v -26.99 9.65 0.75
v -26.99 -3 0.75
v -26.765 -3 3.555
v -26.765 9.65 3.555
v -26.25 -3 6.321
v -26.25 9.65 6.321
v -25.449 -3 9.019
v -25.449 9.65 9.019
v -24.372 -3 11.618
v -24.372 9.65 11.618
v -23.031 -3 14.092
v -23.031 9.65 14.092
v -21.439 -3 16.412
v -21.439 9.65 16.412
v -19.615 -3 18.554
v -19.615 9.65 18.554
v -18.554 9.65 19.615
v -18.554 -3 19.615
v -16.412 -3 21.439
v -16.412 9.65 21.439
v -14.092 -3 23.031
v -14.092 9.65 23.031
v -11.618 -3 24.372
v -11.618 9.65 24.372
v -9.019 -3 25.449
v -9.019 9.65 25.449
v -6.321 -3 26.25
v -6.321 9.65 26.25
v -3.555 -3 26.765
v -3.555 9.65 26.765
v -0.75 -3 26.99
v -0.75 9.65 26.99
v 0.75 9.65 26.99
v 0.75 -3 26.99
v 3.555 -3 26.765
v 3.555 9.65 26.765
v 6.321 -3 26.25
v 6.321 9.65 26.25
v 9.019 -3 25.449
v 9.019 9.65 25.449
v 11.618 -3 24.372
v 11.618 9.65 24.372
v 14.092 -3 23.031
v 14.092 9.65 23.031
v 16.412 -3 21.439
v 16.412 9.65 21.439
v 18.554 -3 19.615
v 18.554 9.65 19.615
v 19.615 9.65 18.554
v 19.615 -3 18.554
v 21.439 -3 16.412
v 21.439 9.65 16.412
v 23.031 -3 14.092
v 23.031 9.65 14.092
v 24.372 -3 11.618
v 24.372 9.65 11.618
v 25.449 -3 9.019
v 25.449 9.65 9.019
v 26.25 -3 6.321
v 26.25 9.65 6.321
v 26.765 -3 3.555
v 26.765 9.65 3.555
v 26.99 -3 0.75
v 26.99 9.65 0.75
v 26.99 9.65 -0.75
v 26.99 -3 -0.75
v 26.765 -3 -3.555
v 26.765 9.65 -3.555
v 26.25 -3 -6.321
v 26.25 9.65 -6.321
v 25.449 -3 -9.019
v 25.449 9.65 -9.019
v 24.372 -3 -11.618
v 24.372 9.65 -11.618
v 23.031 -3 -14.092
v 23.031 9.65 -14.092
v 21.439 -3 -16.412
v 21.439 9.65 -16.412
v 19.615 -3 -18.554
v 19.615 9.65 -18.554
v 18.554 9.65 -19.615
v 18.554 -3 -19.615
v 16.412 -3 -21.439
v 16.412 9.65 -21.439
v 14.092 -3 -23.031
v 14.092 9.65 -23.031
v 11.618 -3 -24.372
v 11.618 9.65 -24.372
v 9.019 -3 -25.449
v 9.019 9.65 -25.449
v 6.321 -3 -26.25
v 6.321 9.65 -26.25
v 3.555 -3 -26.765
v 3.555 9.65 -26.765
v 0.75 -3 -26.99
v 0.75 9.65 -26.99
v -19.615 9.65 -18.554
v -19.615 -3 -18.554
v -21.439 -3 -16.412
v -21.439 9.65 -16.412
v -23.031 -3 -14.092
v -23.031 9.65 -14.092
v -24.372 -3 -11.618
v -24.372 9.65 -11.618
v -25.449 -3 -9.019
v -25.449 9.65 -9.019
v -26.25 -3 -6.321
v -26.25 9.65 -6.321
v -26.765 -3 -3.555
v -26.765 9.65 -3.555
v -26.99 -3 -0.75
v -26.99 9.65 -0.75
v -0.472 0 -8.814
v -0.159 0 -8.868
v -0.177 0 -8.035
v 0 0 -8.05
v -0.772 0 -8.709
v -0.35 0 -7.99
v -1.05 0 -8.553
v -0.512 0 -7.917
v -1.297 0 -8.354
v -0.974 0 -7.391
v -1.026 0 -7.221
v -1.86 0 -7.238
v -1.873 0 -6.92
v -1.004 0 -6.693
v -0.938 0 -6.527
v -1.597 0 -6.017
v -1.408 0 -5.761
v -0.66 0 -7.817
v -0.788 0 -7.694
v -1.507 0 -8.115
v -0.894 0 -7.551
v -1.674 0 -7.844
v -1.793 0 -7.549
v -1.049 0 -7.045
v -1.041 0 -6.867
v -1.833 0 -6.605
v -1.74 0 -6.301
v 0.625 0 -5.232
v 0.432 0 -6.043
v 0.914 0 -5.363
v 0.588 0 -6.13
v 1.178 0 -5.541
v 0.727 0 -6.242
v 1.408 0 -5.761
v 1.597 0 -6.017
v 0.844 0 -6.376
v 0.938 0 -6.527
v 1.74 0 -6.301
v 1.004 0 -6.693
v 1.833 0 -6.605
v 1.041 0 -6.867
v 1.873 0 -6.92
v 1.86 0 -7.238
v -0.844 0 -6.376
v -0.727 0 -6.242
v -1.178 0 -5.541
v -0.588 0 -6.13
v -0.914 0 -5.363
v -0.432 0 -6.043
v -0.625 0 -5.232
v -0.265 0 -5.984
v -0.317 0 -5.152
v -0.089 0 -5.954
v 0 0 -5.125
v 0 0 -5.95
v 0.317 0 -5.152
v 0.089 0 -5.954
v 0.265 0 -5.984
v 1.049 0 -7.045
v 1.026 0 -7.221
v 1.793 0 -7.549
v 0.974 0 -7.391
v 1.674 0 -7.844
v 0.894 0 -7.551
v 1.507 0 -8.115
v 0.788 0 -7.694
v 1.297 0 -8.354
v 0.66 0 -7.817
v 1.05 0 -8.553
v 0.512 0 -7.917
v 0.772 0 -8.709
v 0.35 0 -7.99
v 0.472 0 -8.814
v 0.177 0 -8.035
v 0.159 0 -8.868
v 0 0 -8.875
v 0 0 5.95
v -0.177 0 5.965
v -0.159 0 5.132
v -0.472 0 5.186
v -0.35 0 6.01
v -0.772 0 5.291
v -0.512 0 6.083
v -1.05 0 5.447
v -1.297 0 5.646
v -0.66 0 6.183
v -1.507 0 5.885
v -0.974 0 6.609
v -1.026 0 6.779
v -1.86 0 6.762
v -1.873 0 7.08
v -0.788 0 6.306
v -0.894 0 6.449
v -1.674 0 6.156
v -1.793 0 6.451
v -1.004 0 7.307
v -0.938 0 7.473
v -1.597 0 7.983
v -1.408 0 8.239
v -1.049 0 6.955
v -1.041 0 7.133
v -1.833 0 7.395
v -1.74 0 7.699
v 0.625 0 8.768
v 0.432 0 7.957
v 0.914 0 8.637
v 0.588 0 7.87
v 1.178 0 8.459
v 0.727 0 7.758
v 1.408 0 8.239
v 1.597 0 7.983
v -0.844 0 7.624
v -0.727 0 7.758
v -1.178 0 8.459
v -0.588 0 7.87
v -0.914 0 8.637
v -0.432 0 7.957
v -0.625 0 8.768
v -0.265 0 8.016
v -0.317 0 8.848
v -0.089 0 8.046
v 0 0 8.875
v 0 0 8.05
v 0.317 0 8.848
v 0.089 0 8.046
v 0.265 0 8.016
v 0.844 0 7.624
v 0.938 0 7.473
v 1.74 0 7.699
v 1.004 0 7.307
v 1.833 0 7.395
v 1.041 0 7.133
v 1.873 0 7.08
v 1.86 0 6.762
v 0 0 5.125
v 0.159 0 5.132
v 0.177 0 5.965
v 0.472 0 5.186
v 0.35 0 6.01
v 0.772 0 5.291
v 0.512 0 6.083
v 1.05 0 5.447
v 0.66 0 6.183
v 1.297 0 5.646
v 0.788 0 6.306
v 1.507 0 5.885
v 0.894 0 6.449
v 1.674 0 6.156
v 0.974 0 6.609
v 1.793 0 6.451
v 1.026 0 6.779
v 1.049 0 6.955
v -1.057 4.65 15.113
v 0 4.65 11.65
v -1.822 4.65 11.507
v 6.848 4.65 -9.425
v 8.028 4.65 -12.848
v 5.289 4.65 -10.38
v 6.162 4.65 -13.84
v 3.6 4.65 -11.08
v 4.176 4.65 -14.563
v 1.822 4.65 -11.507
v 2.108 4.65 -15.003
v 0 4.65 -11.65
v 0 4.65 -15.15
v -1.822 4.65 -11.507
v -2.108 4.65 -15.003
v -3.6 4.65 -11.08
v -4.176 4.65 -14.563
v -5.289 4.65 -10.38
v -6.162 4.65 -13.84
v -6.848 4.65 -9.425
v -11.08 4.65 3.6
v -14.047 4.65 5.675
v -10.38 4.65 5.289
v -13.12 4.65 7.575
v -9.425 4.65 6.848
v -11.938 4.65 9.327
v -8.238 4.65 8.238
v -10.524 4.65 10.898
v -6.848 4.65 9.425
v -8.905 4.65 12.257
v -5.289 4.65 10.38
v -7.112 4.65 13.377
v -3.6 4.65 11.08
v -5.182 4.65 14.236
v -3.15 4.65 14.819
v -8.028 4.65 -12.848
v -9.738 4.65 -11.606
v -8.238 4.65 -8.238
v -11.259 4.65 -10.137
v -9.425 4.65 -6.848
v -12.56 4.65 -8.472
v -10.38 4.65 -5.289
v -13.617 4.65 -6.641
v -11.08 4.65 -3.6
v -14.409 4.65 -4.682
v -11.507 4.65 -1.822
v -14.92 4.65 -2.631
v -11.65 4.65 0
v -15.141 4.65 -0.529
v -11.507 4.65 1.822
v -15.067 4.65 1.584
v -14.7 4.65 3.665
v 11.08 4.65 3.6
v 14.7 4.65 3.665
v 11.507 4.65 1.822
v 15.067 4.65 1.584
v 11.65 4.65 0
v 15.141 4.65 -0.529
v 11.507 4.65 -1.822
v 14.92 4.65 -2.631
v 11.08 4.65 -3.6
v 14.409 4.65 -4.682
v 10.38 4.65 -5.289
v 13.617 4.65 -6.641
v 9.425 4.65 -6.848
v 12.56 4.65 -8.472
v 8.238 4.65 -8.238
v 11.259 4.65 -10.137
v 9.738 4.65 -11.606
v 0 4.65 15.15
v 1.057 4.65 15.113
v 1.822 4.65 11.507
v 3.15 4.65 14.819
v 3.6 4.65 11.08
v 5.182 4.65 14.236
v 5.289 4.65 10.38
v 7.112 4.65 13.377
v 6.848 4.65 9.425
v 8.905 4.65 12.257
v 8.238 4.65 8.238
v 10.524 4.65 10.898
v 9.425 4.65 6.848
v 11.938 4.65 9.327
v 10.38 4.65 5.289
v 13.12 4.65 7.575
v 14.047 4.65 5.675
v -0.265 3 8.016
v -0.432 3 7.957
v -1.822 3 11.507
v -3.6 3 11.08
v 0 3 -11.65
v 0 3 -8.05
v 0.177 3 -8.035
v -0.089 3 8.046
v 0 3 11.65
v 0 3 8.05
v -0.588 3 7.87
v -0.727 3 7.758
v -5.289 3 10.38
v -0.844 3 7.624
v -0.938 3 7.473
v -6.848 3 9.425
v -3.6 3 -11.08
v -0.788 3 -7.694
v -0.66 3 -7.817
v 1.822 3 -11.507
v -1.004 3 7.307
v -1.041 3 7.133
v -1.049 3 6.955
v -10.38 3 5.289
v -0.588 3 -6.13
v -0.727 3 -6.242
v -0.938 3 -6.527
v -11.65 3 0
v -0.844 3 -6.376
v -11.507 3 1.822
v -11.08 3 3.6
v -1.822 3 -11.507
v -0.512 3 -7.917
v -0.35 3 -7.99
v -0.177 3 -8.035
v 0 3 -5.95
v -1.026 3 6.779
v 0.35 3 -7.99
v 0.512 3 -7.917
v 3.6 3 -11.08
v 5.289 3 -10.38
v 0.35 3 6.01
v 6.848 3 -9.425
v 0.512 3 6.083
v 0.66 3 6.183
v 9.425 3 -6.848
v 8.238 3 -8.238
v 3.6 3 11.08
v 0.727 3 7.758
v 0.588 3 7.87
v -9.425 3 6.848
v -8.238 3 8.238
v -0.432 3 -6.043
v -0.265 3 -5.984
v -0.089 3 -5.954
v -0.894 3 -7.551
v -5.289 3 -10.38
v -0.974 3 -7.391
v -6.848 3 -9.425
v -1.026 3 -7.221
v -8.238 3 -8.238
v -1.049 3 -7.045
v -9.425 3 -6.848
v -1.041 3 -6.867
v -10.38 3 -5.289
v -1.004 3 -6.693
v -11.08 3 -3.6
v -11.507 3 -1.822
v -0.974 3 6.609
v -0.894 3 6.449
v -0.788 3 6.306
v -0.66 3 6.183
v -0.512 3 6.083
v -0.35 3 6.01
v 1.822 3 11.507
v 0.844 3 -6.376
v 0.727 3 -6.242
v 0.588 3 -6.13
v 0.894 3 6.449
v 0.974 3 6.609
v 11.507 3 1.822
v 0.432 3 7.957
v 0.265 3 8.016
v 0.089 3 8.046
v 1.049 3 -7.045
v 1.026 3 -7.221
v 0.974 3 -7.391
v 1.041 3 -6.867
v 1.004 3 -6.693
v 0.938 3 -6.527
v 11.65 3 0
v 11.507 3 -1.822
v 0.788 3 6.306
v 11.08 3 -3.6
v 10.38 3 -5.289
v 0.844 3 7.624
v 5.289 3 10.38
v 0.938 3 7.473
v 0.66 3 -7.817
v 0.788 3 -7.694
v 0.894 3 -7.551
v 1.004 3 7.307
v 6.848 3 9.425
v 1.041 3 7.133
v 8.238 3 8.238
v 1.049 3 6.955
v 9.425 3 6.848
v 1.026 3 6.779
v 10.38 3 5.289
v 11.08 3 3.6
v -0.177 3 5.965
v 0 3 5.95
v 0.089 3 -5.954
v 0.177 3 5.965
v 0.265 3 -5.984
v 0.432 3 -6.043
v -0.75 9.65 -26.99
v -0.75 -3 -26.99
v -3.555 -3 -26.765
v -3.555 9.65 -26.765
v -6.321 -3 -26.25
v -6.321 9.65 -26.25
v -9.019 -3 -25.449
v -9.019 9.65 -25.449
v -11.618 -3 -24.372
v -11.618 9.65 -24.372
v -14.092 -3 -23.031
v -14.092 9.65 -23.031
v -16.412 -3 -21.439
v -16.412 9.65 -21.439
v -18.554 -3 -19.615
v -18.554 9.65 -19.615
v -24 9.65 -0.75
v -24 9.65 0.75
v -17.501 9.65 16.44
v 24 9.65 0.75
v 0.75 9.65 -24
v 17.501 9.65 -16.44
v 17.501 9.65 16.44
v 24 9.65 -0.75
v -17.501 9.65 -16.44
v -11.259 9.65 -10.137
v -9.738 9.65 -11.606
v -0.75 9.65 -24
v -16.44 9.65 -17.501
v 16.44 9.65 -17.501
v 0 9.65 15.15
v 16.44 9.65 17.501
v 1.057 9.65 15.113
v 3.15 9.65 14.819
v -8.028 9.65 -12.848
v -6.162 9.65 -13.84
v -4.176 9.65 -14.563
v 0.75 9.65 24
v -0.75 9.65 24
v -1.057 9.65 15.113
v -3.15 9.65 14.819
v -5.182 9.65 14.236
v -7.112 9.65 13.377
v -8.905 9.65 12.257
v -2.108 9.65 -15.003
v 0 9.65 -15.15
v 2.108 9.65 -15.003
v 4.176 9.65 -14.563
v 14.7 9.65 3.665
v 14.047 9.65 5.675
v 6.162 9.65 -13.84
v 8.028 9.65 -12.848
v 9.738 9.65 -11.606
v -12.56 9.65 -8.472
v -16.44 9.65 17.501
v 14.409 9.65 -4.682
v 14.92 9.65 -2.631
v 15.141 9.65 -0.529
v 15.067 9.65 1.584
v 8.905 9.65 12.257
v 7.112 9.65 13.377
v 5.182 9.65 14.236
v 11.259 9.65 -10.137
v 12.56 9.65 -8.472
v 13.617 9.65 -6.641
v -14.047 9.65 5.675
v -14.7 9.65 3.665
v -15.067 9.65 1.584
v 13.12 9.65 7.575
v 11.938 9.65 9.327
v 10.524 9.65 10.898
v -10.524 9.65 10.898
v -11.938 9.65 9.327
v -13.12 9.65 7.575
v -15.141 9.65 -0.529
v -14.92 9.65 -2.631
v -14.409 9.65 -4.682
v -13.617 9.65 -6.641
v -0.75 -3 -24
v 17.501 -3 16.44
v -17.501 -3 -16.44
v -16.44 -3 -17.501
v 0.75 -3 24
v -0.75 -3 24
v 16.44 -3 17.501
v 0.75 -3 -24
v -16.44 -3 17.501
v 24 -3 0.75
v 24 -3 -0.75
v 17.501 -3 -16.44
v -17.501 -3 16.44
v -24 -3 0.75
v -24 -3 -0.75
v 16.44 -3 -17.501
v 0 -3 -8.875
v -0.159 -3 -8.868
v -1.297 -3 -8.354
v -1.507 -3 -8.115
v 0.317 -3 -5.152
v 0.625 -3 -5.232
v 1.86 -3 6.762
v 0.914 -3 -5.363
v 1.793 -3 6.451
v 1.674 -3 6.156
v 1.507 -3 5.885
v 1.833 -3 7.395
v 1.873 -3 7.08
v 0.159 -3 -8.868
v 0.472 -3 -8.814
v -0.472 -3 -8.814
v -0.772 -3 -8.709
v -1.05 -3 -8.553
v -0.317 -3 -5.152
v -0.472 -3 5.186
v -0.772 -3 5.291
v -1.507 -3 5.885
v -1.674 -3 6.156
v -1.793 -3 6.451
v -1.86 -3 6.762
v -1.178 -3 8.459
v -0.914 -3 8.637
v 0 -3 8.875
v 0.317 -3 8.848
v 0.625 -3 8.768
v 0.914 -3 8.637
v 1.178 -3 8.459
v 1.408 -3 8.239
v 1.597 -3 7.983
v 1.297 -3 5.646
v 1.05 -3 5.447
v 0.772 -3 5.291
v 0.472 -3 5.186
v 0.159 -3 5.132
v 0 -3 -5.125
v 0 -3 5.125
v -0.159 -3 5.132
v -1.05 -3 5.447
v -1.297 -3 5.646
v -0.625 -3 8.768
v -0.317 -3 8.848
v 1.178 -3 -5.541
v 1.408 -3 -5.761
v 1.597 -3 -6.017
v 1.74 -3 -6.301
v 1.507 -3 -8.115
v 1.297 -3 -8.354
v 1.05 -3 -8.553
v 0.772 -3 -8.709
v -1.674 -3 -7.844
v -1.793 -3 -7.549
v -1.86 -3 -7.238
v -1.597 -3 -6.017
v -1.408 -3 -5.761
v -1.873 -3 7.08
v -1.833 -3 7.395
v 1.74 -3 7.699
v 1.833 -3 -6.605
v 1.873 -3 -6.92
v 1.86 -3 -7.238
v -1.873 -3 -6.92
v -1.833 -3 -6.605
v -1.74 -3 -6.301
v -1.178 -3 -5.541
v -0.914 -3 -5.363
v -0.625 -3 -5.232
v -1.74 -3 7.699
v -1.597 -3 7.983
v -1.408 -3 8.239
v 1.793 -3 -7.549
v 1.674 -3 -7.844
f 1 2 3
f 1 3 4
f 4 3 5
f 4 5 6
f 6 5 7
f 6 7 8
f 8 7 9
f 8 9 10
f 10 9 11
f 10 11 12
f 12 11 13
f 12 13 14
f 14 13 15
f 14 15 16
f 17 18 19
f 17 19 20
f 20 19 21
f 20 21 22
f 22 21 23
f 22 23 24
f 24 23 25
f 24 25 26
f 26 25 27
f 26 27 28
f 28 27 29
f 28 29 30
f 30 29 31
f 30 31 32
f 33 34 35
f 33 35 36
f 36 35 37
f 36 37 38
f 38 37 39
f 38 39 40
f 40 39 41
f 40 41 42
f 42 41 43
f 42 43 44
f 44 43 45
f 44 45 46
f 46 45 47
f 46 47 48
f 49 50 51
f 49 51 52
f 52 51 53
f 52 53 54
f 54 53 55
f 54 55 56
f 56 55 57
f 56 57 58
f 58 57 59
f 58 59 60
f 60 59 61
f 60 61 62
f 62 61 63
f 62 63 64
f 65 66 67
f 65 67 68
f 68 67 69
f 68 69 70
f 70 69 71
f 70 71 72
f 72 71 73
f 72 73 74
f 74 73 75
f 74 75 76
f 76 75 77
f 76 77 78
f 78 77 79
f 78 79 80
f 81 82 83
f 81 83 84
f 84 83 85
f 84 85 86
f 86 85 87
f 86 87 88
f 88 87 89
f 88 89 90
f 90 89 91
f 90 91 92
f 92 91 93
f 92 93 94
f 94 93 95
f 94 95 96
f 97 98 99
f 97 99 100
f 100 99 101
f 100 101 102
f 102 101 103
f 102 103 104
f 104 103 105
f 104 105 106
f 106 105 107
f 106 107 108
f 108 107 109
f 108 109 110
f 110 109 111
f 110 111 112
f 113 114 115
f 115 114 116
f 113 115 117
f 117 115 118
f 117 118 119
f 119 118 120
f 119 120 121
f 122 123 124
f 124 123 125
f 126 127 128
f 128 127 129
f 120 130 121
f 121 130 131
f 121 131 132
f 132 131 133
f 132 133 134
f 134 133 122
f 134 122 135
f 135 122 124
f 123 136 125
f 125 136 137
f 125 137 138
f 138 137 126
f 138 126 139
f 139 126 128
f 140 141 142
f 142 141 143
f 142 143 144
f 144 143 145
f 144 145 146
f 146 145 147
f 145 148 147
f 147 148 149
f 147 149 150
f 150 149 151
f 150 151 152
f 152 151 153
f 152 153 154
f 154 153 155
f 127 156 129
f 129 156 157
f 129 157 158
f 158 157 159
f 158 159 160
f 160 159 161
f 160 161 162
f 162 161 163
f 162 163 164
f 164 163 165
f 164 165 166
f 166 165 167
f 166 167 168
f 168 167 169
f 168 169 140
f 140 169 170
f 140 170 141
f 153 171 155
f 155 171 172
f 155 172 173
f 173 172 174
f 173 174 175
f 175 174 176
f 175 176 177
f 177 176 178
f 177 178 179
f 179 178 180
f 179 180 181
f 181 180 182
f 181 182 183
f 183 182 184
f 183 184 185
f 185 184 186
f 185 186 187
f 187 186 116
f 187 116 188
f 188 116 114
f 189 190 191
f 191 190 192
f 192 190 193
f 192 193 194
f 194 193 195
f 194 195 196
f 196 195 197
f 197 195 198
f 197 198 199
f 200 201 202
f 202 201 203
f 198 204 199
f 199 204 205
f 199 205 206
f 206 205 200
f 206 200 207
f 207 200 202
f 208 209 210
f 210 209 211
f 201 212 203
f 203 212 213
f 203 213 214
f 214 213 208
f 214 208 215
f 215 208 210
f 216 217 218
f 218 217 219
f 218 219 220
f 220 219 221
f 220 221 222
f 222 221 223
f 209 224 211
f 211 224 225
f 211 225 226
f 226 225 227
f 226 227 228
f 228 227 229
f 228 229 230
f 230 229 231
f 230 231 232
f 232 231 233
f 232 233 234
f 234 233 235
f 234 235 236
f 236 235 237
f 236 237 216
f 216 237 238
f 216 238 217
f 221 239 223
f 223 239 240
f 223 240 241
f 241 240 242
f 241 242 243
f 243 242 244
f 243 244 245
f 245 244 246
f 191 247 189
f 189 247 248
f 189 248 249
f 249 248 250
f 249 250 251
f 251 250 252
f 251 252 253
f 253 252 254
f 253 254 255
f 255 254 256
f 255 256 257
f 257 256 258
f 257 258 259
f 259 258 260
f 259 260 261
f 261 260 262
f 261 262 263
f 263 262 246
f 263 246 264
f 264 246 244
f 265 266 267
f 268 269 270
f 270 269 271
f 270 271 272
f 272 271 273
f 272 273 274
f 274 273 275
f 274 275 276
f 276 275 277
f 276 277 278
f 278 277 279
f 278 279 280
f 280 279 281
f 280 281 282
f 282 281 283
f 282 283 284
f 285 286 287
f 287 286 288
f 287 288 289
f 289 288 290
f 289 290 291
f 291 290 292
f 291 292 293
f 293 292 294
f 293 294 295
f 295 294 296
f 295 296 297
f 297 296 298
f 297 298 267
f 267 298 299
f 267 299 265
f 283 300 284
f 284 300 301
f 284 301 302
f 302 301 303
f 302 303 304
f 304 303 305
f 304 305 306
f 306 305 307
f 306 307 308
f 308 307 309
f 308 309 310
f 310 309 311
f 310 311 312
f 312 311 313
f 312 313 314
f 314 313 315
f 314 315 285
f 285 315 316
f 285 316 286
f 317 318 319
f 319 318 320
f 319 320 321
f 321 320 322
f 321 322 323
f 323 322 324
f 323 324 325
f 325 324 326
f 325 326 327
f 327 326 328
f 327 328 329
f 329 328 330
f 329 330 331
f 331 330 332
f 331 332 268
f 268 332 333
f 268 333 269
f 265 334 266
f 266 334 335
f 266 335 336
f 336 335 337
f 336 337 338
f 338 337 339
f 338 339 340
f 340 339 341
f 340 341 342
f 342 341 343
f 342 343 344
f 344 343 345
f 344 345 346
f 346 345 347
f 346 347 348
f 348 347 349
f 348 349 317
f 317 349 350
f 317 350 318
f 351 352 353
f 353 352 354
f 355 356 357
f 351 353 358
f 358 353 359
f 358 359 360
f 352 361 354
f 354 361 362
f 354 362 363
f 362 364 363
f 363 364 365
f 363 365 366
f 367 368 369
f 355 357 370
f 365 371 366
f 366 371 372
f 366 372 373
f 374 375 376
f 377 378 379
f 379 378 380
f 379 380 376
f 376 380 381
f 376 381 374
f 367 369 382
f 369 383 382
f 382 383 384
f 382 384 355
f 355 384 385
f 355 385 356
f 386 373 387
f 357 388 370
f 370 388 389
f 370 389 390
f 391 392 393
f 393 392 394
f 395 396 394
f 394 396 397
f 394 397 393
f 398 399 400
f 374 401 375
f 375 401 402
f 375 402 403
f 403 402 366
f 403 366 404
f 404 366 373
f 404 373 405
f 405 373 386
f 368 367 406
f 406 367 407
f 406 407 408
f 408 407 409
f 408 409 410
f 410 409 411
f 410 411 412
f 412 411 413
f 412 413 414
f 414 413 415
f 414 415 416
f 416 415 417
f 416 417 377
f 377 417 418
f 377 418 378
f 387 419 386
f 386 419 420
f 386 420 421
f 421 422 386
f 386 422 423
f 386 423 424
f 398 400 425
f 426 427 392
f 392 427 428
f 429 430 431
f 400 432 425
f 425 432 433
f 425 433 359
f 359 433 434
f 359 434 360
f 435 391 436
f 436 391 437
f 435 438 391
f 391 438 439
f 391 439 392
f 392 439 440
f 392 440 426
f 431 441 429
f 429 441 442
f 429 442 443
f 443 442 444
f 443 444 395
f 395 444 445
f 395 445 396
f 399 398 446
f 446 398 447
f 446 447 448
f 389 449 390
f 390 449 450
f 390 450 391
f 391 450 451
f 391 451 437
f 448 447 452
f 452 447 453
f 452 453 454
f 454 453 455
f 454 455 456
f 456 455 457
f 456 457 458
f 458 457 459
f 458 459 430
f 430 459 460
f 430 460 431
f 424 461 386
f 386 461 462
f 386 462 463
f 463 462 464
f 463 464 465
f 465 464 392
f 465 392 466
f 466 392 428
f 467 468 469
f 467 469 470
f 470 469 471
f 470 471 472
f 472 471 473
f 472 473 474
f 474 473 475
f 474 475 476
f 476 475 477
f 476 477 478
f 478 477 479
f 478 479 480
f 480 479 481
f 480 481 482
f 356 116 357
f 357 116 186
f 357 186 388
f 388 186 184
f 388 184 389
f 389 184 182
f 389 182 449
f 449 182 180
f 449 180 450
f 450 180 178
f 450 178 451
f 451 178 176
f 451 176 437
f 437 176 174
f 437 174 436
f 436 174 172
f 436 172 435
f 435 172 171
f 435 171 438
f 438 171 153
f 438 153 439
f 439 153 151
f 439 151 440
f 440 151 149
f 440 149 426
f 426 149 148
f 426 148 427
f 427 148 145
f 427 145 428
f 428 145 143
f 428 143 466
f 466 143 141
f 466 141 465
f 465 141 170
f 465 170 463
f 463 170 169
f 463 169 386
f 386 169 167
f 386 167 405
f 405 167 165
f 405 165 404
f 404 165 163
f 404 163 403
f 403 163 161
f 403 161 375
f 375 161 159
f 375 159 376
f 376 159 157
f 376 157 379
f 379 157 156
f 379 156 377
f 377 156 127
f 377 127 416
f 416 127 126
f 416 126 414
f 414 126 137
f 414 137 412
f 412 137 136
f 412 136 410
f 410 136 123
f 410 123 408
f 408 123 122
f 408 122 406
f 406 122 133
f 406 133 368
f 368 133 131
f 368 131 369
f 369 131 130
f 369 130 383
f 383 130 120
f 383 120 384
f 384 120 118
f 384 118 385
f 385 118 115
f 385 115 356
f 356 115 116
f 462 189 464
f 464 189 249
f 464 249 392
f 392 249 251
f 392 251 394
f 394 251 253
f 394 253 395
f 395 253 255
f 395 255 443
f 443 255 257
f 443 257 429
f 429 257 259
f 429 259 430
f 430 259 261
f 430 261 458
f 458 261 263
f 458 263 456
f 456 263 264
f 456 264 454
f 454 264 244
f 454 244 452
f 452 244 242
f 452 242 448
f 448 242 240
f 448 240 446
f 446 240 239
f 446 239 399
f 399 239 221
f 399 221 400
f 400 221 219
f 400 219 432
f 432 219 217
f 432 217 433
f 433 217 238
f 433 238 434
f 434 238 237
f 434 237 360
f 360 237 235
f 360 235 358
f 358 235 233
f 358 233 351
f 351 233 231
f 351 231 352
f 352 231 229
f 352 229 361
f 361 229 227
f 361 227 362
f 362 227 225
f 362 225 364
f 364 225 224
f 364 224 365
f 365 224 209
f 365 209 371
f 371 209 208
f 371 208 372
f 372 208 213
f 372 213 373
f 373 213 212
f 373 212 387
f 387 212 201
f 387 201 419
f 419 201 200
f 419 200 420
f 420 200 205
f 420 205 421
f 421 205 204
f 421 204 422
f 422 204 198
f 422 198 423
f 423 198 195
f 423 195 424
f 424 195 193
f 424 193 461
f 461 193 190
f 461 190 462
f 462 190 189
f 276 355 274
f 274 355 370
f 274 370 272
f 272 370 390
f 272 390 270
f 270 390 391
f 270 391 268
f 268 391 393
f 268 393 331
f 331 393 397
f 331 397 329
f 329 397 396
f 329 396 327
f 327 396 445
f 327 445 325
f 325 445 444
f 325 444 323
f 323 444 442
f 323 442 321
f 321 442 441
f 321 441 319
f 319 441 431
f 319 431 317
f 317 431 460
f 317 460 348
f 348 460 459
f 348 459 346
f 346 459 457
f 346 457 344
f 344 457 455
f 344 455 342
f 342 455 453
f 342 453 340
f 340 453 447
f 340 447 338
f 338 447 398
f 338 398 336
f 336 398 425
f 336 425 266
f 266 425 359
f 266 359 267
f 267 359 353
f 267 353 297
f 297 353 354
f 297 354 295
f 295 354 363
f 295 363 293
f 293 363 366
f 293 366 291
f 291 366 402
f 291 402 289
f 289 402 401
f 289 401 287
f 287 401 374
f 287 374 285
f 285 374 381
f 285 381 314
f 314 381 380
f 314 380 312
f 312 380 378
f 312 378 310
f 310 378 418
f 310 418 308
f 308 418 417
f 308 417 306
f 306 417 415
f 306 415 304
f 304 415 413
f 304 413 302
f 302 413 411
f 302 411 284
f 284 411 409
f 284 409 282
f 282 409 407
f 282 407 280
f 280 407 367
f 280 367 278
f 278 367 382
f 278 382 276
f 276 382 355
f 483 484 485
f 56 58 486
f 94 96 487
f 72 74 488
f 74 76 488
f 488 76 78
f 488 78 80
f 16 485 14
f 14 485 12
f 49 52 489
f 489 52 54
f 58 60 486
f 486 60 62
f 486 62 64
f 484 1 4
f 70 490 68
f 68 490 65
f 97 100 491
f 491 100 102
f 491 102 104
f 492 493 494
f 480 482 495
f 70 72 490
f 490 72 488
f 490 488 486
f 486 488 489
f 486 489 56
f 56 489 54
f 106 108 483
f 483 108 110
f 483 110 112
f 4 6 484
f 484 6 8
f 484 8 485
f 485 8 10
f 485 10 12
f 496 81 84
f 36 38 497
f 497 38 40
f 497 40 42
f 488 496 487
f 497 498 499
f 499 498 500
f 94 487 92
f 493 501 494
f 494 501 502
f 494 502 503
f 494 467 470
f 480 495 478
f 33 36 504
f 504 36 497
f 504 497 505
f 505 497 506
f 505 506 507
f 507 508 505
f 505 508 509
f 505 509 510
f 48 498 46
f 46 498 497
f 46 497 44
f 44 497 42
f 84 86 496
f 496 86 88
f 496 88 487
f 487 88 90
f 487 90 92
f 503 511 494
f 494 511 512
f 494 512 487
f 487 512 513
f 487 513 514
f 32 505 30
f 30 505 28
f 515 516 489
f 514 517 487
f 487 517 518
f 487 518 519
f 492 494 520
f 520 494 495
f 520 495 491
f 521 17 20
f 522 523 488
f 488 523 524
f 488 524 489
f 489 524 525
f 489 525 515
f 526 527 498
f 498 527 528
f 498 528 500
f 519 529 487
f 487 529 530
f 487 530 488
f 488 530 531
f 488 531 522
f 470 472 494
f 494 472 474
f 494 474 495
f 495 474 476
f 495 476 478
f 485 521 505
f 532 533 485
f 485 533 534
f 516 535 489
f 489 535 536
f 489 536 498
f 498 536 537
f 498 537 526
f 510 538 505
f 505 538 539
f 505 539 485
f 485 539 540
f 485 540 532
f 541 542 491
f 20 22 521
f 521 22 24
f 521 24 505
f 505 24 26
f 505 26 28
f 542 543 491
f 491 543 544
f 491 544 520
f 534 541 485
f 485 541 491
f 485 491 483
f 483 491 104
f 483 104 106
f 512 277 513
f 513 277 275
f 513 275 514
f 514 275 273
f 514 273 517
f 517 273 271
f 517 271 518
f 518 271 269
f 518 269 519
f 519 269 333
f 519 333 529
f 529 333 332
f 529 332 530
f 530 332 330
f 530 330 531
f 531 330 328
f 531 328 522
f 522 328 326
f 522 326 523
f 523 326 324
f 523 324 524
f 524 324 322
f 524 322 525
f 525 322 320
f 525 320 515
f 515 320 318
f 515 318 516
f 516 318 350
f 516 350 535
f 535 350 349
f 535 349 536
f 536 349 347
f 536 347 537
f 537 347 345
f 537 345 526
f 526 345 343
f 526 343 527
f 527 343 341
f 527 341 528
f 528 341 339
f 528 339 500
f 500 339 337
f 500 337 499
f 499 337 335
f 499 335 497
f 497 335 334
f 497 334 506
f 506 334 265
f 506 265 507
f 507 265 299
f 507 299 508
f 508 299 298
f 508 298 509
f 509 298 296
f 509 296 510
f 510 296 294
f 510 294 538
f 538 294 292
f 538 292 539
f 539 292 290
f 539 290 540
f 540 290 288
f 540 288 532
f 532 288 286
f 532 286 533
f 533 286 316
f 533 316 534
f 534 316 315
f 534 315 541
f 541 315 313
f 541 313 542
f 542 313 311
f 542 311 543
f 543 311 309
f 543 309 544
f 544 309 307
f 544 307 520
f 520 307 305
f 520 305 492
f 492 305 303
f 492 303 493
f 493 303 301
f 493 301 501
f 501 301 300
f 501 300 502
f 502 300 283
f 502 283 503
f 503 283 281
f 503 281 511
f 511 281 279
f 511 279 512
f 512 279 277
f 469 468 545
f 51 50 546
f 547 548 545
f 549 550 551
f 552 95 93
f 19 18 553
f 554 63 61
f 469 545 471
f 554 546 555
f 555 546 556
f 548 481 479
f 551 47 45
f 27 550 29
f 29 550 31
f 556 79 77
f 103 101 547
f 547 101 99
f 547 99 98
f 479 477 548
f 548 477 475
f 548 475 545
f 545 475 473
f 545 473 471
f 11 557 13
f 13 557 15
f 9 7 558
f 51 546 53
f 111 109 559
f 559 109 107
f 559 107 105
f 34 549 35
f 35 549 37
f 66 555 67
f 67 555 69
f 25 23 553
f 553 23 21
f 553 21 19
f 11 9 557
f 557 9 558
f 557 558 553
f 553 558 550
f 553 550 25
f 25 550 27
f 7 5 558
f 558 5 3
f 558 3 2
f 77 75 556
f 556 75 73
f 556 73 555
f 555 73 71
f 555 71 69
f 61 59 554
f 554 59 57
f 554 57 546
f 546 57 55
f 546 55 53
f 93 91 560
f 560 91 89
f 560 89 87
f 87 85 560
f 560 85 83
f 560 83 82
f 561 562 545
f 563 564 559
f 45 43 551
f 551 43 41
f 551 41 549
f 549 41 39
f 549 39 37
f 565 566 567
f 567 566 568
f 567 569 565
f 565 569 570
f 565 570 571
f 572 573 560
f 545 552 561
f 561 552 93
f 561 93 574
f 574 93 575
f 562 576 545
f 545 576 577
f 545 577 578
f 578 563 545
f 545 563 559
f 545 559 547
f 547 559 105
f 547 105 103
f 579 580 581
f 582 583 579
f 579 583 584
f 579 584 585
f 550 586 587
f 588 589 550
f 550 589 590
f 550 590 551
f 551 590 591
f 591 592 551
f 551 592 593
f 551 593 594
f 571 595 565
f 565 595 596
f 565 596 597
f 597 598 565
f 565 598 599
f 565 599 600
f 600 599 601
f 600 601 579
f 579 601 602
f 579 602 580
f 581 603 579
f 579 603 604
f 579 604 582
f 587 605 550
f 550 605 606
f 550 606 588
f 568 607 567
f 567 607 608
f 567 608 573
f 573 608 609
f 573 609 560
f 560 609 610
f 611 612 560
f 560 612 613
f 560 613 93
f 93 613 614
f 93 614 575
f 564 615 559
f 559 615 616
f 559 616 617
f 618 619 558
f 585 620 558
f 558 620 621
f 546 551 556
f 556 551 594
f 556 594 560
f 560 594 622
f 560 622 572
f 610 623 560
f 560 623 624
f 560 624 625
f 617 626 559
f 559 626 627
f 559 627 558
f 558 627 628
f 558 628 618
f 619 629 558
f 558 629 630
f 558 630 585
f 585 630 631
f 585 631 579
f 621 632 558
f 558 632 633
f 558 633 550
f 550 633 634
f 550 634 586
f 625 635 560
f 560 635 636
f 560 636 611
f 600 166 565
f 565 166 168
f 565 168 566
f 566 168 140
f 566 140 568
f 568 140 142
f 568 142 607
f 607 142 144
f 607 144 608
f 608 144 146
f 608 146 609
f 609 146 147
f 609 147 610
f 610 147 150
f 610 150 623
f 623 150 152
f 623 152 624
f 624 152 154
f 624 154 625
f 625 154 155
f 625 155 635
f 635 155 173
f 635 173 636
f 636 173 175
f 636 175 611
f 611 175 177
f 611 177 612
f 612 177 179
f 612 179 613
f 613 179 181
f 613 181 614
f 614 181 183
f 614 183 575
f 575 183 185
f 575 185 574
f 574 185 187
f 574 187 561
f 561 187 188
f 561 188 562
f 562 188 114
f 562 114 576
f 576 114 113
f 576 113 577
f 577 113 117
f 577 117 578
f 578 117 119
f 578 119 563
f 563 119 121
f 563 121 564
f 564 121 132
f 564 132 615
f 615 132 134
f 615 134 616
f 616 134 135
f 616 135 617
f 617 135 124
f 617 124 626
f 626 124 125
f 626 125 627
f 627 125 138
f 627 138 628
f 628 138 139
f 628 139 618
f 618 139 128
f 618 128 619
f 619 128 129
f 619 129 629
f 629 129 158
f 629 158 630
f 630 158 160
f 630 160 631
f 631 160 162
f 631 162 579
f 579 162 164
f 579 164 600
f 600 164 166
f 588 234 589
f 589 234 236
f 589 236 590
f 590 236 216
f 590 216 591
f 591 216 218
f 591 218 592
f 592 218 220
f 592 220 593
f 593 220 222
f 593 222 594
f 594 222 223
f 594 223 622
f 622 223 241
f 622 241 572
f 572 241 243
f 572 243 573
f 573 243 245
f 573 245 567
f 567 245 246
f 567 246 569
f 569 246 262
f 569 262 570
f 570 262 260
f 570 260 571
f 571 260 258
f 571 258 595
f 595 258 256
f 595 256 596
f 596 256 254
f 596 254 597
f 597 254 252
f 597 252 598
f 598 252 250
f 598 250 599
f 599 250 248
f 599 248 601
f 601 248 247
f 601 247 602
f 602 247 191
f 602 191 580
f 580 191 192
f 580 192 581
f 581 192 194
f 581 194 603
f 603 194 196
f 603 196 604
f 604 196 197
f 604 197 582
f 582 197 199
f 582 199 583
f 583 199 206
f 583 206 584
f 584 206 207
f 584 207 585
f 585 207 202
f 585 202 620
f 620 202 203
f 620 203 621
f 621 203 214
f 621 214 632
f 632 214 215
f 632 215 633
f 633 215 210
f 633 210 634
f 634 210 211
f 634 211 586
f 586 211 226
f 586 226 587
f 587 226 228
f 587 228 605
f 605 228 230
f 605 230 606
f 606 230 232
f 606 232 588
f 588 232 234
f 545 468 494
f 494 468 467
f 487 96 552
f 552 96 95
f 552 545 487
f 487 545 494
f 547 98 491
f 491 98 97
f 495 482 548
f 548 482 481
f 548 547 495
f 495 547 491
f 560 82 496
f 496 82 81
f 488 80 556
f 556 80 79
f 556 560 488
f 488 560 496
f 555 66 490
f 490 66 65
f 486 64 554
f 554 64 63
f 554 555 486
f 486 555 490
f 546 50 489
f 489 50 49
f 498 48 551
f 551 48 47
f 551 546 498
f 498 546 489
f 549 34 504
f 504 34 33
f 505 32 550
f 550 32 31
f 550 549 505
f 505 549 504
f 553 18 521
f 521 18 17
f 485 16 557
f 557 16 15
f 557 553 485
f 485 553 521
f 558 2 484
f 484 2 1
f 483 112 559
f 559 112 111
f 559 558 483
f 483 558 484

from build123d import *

# Parameters (mm, degrees)
SKETCH1_R           = 27
SKETCH1_R_2         = 1.05
BOSS_EXTRUDE1_DEPTH = 3
SKETCH2_R           = 27
SKETCH2_R_2         = 11.65
BOSS_EXTRUDE2_DEPTH = 1.65
SKETCH3_R           = 27
SKETCH3_R_2         = 15.15
BOSS_EXTRUDE3_DEPTH = 5
BOSS_EXTRUDE4_START = 3
SKETCH4_R           = 27
SKETCH4_R_2         = 1.875
BOSS_EXTRUDE4_DEPTH = 3
SKETCH5_W           = 1.5
SKETCH5_H           = 3.970266945
CUT_EXTRUDE1_DEPTH  = 41.224650402
CIRPATTERN1_COUNT   = 8


with BuildPart() as part:
    # Sketch1 → Boss-Extrude1 (new body)
    with BuildSketch(Plane(origin=(0, 0, 0), x_dir=(1, 0, 0), z_dir=(0, 1, 0))):
        with Locations(Location((0, 0, 0), (0, 0, 270))):
            Circle(SKETCH1_R)
        with Locations(Location((0, 7, 0), (0, 0, 270))):
            Circle(SKETCH1_R_2, mode=Mode.SUBTRACT)
        with Locations(Location((0, -7, 0), (0, 0, 270))):
            Circle(SKETCH1_R_2, mode=Mode.SUBTRACT)
    extrude(amount=BOSS_EXTRUDE1_DEPTH)

    # Sketch2 → Boss-Extrude2 (add)
    with BuildSketch(Plane(origin=(0, 3, 0), x_dir=(1, 0, 0), z_dir=(0, 1, 0))):
        with Locations(Location((0, 0, 0), (0, 0, 270))):
            Circle(SKETCH2_R)
        with Locations(Location((0, 0, 0), (0, 0, 270))):
            Circle(SKETCH2_R_2, mode=Mode.SUBTRACT)
    extrude(amount=BOSS_EXTRUDE2_DEPTH)

    # Sketch3 → Boss-Extrude3 (add)
    with BuildSketch(Plane(origin=(0, 4.65, 0), x_dir=(1, 0, 0), z_dir=(0, 1, 0))):
        with Locations(Location((0, 0, 0), (0, 0, 270))):
            Circle(SKETCH3_R)
        with Locations(Location((0, 0, 0), (0, 0, 270))):
            Circle(SKETCH3_R_2, mode=Mode.SUBTRACT)
    extrude(amount=BOSS_EXTRUDE3_DEPTH)

    # Sketch4 → Boss-Extrude4 (add)
    with BuildSketch(Plane.XZ.offset(BOSS_EXTRUDE4_START)):
        with Locations(Location((0, 0, 0), (0, 0, 270))):
            Circle(SKETCH4_R)
        with Locations(Location((0, -7, 0), (0, 0, 270))):
            Circle(SKETCH4_R_2, mode=Mode.SUBTRACT)
        with Locations(Location((0, 7, 0), (0, 0, 270))):
            Circle(SKETCH4_R_2, mode=Mode.SUBTRACT)
    extrude(amount=-BOSS_EXTRUDE4_DEPTH)

    # Sketch5 → Cut-Extrude1 (cut, through all)
    with BuildSketch(Plane(origin=(0, 9.65, 0), x_dir=(1, 0, 0), z_dir=(0, 1, 0))):
        with Locations((0, 25.985133473)):
            Rectangle(SKETCH5_W, SKETCH5_H)
    cut_extrude1 = extrude(amount=-CUT_EXTRUDE1_DEPTH, mode=Mode.SUBTRACT)

    # CirPattern1: Cut-Extrude1 ×8 about axis
    cirpattern1_axis = Axis((0, 0, 0), (0, 1, 0))
    for i in range(1, CIRPATTERN1_COUNT):
        add(cut_extrude1.rotate(cirpattern1_axis, i * 360 / CIRPATTERN1_COUNT), mode=Mode.SUBTRACT)


solid = part.part
